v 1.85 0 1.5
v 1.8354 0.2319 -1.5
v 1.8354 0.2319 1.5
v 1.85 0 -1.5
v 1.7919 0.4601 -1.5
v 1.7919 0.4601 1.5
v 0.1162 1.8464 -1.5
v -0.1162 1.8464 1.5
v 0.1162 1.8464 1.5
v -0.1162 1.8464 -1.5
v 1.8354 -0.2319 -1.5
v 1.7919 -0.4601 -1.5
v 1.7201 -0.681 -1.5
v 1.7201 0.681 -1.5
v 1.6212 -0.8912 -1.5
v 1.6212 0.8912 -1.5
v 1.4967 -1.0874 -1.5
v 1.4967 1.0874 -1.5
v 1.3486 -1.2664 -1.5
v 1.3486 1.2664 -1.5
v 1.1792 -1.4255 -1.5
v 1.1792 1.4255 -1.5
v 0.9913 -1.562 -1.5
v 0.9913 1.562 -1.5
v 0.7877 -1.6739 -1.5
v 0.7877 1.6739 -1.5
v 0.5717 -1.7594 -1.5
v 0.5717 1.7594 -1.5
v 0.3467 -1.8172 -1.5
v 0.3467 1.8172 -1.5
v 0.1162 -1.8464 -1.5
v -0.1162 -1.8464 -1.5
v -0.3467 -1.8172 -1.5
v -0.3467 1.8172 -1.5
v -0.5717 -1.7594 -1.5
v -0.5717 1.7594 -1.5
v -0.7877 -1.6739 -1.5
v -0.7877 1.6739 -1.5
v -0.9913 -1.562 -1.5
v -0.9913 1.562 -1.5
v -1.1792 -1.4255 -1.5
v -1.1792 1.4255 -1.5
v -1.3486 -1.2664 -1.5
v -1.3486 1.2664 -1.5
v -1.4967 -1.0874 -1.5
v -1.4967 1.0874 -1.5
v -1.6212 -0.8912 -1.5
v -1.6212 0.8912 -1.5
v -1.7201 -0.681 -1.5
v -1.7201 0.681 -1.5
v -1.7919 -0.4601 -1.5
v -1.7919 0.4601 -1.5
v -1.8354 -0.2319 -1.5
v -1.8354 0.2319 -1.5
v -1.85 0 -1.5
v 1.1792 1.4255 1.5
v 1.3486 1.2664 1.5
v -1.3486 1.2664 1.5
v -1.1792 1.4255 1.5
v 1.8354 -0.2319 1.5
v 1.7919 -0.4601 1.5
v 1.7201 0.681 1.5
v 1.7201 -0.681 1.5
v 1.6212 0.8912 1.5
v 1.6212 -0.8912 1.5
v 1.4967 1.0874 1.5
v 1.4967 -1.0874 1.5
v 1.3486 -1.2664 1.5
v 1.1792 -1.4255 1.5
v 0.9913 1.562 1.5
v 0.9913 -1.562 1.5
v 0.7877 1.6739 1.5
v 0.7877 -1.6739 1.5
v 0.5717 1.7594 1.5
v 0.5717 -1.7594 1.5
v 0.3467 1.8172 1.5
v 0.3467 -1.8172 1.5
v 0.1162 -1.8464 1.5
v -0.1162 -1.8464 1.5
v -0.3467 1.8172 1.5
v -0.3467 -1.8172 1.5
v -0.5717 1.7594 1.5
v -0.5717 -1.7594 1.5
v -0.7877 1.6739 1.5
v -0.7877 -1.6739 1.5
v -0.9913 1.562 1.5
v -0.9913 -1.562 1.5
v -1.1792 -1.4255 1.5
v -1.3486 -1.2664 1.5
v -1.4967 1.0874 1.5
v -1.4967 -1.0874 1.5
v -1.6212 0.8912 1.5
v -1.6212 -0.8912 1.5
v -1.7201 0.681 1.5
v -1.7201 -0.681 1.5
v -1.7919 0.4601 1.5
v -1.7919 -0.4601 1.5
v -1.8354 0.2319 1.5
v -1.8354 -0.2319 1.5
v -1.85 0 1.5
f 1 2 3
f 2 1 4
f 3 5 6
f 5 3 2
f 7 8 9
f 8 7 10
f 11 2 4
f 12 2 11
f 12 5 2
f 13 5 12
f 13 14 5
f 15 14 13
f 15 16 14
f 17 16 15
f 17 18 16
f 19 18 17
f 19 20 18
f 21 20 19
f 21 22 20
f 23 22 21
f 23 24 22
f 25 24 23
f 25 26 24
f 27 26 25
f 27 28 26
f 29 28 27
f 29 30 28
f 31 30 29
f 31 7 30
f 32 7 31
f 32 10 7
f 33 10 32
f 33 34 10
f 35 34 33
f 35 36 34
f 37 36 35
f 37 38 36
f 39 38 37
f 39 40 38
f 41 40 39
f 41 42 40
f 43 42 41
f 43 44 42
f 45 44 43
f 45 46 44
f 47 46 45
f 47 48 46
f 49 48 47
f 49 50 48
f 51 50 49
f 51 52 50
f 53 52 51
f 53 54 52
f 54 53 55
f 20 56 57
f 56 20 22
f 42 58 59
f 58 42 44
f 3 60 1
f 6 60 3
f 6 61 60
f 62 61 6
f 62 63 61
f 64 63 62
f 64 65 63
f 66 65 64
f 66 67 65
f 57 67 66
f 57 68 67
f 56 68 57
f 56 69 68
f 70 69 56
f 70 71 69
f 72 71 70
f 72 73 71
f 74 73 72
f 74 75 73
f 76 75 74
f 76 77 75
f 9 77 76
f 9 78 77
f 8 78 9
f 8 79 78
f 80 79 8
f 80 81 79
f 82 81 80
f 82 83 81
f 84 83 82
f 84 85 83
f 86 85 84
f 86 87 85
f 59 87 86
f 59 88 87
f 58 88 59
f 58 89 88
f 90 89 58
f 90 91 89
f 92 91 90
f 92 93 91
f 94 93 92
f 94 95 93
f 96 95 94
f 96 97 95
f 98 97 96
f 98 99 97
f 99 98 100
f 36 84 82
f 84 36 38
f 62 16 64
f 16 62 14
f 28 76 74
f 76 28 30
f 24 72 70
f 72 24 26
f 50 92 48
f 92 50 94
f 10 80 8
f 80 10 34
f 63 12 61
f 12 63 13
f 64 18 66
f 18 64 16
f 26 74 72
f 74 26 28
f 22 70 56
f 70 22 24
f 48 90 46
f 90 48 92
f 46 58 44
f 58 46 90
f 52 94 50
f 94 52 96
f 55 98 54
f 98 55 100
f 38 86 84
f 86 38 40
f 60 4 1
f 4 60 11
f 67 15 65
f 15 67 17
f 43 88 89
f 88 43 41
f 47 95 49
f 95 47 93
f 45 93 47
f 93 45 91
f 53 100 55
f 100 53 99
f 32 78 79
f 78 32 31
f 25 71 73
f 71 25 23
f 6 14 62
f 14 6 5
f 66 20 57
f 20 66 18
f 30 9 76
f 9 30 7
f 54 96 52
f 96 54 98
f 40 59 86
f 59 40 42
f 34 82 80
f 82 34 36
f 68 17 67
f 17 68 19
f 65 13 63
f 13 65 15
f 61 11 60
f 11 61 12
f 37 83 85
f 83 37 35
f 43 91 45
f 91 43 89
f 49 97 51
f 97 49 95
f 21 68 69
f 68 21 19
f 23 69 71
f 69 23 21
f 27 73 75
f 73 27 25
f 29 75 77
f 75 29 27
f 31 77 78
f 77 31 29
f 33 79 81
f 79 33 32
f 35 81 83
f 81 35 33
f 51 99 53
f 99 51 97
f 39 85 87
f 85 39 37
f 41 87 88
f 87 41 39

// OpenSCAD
$fn = 50;


difference() {
	union() {
		translate(v = [0, 0, -1.5000000000]) {
			cylinder(h = 3, r = 1.8500000000);
		}
	}
	union() {
		translate(v = [0, 0, -100.0000000000]) {
			cylinder(h = 200, r = 0);
		}
	}
}
